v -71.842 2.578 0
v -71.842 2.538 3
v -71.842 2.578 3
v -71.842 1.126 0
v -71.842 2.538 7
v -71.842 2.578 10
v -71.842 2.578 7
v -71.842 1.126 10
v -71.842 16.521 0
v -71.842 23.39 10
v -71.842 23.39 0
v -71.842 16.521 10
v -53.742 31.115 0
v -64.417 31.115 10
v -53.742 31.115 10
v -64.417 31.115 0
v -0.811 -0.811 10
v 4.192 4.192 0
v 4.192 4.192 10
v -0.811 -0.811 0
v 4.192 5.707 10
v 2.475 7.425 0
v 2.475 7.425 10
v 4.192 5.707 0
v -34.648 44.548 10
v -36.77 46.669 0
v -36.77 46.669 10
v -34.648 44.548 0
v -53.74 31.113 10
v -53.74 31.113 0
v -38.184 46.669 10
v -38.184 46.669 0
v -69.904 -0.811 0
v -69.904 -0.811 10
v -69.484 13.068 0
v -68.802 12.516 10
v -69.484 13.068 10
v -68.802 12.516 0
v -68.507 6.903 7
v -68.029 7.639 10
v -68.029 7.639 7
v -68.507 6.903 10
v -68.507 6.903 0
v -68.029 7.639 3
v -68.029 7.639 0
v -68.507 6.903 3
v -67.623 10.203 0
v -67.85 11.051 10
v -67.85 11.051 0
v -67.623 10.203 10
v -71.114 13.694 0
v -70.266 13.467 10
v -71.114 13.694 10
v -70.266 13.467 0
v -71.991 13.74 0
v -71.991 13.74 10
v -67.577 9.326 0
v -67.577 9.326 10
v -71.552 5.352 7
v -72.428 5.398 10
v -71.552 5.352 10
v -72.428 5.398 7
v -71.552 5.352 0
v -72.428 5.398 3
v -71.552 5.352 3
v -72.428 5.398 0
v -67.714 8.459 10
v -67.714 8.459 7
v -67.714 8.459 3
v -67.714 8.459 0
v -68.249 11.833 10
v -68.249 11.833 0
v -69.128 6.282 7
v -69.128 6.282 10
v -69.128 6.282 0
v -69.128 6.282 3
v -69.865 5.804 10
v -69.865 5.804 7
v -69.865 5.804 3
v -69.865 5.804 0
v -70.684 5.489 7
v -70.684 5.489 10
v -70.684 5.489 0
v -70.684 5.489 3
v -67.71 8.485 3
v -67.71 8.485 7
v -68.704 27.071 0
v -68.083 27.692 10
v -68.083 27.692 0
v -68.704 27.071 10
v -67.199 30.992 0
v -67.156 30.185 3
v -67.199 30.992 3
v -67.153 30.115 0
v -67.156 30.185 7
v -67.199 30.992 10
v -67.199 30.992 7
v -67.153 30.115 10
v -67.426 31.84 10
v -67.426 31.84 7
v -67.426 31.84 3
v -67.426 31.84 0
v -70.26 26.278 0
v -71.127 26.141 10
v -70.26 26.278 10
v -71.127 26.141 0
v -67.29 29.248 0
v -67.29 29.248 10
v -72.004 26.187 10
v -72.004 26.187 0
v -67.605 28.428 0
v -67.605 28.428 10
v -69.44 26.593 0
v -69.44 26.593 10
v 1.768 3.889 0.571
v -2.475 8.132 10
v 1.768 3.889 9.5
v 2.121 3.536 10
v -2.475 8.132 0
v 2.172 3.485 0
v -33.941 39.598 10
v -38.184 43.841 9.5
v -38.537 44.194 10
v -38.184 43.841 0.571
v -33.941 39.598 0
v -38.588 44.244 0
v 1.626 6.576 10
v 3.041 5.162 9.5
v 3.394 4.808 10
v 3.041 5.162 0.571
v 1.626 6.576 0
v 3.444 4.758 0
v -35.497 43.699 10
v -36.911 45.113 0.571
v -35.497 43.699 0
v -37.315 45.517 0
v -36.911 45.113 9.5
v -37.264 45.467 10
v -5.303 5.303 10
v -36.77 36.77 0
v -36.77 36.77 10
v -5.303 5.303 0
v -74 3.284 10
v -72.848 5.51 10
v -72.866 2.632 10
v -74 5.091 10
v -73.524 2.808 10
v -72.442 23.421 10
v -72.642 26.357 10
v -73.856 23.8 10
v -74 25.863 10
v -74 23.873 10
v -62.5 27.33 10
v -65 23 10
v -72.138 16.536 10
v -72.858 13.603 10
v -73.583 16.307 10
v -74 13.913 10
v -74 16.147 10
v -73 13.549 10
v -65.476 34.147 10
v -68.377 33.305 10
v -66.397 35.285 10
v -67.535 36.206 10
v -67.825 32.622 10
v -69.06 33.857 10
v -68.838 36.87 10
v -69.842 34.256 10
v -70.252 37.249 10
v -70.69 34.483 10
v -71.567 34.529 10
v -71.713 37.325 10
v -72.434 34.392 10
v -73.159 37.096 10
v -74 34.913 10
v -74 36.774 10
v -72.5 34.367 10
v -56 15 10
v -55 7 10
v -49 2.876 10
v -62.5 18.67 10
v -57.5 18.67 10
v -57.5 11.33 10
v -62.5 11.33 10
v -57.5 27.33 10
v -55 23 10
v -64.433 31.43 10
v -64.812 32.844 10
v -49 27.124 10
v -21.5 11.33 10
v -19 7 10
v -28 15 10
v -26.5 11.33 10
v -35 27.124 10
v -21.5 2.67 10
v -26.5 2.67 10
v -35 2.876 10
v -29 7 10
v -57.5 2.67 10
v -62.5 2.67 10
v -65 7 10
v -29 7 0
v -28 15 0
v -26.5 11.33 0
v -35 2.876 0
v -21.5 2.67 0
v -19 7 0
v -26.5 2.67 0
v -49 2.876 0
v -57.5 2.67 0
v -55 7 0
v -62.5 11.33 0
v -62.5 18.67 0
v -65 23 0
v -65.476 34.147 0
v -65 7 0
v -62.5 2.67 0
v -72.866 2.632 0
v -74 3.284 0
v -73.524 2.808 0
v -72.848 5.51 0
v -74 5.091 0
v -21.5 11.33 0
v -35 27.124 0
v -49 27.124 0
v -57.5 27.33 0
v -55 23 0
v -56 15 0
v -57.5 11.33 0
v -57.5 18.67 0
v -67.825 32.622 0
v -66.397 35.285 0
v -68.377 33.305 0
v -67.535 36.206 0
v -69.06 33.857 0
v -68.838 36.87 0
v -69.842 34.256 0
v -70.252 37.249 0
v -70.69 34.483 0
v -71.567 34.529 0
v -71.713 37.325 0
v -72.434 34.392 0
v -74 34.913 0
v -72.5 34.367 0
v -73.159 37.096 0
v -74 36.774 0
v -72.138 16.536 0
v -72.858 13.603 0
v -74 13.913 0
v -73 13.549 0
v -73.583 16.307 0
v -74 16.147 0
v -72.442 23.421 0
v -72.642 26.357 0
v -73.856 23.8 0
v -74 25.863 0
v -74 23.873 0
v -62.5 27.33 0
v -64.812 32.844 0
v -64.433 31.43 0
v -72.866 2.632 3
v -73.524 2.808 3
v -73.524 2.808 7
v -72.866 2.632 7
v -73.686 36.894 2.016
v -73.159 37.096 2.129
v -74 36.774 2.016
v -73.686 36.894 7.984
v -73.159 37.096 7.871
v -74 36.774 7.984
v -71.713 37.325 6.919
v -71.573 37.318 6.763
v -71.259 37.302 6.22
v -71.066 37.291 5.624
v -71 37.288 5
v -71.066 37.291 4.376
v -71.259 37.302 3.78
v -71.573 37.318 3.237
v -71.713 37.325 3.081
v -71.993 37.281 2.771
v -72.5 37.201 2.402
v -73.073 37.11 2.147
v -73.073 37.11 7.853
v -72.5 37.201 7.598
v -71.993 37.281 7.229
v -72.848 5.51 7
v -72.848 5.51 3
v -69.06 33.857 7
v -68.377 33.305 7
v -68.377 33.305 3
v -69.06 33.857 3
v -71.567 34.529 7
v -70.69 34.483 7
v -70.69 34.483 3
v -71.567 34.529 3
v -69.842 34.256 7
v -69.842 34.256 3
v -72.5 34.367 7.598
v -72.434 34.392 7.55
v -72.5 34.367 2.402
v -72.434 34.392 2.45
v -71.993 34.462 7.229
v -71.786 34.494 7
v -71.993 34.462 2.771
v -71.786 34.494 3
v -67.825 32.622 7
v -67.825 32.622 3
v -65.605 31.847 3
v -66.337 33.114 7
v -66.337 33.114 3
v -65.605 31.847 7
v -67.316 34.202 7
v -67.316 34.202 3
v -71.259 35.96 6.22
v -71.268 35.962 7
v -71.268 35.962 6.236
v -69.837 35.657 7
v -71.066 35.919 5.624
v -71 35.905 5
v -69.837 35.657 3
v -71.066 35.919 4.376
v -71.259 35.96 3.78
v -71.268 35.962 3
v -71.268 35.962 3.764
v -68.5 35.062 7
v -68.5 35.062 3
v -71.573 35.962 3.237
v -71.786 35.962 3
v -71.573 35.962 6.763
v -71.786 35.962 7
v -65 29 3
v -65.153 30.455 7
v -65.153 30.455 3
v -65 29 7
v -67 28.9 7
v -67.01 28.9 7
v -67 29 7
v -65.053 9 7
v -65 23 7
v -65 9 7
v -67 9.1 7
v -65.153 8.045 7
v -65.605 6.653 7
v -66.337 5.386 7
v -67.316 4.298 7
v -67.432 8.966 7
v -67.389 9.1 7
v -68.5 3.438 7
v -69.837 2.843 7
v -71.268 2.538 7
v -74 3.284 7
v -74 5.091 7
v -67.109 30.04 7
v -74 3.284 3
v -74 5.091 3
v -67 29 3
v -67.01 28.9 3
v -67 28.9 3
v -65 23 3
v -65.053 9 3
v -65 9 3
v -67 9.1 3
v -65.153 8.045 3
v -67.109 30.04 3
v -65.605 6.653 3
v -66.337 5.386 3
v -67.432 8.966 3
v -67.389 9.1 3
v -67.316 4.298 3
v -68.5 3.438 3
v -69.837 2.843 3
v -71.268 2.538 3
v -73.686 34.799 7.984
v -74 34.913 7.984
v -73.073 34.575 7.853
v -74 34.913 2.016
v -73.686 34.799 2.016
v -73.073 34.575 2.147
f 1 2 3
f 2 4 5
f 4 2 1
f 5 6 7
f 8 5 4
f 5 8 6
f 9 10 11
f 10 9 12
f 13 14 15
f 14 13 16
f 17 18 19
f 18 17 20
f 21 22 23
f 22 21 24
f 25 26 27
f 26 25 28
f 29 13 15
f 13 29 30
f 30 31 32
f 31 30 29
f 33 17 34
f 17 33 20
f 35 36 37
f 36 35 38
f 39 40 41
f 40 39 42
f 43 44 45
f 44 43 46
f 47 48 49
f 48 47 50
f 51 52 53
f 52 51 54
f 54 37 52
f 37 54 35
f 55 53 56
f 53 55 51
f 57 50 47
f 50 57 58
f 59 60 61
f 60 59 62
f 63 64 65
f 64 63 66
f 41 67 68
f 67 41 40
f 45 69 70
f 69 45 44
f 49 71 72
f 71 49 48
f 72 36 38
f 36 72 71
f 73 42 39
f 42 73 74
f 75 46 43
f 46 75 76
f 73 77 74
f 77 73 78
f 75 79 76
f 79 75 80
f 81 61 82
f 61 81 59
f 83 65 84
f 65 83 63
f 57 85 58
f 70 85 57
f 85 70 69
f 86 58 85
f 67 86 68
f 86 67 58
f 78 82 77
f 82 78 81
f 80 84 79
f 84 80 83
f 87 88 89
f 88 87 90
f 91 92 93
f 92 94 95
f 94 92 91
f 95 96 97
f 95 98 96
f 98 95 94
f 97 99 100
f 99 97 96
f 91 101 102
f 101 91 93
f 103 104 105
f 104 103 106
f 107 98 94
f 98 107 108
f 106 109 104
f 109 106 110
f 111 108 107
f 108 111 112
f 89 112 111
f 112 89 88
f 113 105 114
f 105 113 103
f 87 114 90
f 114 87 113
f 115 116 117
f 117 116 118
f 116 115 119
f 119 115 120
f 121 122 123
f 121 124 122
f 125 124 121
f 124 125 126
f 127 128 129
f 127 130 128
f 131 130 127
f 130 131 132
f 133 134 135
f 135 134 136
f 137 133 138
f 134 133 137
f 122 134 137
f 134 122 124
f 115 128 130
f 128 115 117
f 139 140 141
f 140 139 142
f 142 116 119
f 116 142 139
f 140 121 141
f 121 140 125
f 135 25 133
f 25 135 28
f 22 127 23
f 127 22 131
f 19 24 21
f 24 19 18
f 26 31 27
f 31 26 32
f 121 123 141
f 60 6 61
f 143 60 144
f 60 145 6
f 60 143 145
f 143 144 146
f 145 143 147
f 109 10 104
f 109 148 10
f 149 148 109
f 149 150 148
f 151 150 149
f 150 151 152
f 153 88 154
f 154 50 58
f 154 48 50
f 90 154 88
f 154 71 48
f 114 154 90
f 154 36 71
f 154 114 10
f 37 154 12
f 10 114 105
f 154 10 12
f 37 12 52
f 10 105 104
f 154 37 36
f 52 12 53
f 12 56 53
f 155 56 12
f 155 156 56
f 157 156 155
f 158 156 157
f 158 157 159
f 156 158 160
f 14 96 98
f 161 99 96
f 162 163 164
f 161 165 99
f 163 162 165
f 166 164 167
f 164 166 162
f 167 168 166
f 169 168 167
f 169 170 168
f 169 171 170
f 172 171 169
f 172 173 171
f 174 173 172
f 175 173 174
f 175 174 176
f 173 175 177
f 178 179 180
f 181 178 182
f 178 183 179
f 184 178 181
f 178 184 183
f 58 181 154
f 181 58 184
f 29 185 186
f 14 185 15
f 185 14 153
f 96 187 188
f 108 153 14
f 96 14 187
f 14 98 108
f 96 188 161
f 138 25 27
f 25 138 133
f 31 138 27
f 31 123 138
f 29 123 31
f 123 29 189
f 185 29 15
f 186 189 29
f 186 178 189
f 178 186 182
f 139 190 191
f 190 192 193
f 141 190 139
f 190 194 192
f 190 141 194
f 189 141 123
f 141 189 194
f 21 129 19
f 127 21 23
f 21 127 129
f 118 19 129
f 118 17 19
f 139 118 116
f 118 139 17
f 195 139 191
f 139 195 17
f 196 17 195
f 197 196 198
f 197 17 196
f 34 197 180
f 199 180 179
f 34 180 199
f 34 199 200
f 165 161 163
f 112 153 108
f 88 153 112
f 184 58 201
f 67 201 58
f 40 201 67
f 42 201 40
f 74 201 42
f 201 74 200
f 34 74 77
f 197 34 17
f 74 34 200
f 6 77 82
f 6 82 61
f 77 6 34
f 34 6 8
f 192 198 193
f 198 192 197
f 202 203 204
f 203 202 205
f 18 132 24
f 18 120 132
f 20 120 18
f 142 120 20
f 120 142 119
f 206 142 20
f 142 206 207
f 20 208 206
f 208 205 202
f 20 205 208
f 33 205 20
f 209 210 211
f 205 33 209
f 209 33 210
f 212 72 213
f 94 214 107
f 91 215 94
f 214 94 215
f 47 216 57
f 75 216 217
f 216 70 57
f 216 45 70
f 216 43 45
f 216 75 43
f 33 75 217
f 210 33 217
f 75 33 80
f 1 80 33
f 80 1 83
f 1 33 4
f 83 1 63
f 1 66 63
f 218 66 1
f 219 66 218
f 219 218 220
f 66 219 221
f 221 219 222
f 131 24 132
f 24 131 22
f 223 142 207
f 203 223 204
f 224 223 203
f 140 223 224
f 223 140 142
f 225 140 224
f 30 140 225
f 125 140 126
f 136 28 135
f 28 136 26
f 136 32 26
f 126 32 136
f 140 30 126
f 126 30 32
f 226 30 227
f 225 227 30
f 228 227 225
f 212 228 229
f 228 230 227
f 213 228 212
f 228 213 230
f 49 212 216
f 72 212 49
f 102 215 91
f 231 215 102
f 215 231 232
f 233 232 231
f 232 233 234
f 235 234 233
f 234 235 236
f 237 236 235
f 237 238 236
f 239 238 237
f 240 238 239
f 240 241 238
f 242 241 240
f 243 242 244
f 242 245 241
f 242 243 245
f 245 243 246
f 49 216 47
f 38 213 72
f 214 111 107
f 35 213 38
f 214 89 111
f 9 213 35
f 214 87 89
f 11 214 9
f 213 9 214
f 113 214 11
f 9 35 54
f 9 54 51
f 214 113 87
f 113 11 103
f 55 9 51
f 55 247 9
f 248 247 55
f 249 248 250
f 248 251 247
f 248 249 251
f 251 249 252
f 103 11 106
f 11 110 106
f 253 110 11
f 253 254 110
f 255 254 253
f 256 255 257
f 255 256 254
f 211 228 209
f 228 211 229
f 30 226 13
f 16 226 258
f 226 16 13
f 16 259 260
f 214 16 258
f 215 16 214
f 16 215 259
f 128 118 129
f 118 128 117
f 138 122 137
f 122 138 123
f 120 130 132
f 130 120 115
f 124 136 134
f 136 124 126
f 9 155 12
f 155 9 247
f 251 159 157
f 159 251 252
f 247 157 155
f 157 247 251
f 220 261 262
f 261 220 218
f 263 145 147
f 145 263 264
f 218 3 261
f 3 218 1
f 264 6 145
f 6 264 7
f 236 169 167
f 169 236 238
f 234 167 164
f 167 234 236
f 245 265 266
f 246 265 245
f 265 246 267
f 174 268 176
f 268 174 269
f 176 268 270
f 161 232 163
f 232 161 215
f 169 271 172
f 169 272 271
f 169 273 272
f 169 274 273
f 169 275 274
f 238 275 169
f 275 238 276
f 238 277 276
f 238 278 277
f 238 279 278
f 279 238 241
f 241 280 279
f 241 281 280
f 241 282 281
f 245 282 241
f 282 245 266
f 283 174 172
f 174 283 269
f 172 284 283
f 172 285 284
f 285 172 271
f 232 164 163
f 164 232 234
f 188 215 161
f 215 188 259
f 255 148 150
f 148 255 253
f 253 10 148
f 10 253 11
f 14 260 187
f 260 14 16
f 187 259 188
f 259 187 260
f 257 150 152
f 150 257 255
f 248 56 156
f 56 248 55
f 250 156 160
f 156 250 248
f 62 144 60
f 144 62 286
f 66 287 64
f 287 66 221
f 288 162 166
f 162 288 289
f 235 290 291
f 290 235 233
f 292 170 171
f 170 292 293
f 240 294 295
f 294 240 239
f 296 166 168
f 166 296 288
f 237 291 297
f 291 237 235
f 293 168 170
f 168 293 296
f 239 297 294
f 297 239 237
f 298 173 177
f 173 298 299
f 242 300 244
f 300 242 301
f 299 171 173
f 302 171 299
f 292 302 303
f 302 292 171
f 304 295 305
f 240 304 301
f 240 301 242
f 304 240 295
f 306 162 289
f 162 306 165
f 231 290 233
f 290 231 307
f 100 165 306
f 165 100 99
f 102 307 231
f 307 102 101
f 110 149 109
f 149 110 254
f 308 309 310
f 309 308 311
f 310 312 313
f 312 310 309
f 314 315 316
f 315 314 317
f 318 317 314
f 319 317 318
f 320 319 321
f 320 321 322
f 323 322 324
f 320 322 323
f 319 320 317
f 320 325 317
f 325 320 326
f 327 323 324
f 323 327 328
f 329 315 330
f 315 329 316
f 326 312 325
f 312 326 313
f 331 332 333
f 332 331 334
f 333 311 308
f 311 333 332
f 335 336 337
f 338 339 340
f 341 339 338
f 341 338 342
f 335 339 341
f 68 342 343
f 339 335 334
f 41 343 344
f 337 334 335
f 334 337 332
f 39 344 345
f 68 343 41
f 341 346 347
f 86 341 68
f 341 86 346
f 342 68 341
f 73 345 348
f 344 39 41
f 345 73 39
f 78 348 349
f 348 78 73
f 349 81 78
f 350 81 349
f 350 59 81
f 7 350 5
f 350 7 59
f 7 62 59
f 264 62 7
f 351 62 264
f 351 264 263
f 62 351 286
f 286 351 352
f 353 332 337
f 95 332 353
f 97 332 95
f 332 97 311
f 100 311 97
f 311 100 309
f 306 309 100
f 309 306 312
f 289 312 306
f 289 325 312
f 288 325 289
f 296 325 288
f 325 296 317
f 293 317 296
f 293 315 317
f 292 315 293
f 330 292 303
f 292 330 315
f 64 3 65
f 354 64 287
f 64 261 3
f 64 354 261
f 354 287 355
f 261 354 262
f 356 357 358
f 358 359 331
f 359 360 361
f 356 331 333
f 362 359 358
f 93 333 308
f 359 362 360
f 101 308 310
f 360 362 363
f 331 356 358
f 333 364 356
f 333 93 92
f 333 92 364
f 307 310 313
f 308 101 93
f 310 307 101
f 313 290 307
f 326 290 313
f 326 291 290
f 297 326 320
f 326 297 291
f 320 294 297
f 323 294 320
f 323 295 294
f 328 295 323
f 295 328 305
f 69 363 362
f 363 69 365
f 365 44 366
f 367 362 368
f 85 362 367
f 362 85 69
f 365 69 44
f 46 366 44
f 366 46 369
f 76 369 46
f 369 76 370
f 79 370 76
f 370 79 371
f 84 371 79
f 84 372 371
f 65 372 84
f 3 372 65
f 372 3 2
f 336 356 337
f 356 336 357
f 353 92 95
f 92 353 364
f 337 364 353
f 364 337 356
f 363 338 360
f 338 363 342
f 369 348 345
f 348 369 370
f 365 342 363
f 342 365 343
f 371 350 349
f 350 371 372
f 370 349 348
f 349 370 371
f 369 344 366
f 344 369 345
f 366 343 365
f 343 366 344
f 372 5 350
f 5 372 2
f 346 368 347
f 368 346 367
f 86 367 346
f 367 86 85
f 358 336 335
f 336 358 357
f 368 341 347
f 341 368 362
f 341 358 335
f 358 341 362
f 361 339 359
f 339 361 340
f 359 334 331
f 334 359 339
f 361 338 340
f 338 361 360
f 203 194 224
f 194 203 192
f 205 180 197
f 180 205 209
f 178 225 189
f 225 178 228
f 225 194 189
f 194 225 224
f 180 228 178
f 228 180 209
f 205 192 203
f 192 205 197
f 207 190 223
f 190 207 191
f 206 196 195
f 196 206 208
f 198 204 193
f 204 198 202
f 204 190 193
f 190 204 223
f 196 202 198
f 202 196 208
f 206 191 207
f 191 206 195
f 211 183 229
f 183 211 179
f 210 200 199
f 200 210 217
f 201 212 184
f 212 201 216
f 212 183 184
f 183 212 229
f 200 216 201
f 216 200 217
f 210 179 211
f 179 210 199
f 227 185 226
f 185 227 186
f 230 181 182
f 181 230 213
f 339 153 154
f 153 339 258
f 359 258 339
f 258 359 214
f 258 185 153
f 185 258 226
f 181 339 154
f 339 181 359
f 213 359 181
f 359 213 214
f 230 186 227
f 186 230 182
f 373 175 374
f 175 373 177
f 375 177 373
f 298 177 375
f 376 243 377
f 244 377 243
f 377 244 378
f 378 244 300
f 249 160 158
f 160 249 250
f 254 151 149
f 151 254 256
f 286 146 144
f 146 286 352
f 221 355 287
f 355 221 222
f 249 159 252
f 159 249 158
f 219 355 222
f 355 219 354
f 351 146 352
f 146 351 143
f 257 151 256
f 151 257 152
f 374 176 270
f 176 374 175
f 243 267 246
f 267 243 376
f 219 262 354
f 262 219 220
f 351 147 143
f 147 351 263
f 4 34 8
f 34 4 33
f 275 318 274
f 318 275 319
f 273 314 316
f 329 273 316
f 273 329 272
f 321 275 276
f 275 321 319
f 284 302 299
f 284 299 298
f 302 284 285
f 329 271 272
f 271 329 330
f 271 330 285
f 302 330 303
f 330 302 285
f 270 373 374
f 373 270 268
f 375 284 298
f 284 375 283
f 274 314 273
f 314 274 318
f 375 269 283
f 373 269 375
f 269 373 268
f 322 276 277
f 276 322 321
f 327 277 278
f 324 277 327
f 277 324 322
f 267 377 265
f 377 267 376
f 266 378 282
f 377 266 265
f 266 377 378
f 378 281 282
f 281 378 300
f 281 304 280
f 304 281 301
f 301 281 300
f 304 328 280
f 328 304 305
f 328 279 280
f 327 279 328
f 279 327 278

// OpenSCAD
// PRUSA iteration3
// lcd-support-A
// GNU GPL v3
// Josef Průša <iam@josefprusa.cz> and contributors
// http://www.reprap.org/wiki/Prusa_Mendel
// http://prusamendel.org

isMetric=true;


module body(){

difference() {
    
    union(){
        translate( [ -55, -2 , 0 ] ) cube( [ 69 , 81 , 10 ] ); 
    }
    
    union (){

    // outer body shape
    translate( [ -69.6, 32, -1 ] ) rotate([0,0,45]) cube( [ 60 , 53 , 15 ] ); 
    translate( [ 13.7, 89.7, -1 ] ) rotate([0,0,135]) cube( [ 60 , 42 , 15 ] );
    translate( [ -19, -9, -1 ] ) cube( [ 60 , 9 , 15 ] );   
    translate( [ 7, -3, -1 ] ) cube( [ 60 , 68 , 16 ] );  
    translate( [ -16, 60, -1 ] ) cube( [ 60 , 50 , 15 ] );
    translate( [ -41, -45, -1 ] ) rotate([0,0,45]) cube( [ 60 , 80 , 13 ] );  
        
    // threaded rods opening
    translate( [ -44 , 57.5 , -1 ] ) cylinder( h = 17, r = 4.2, $fn=30);  
    translate( [ -29 , 71.9 , -1 ] ) cylinder( h = 17, r = 4.2, $fn=30);  

    // pcb cout out
    translate( [ 4 , 1.5 , -1 ] ) cube( [ 1.8 , 56.5 , 17 ] ); 
    translate( [ 0 , 7.5 , -1 ] ) cube( [ 5.8 , 44.5 , 17 ] ); 
    translate( [ 4.8 , 3.5 , -1 ] ) cube( [ 5.8 , 52.5 , 17 ] );

    translate( [ 8 , -5 , -1 ] ) rotate([0,0,45]) cube( [ 5 , 5 , 17 ] );
    translate( [ 8 , 58 , -1 ] ) rotate([0,0,45]) cube( [ 5 , 5 , 17 ] );
        
    }

    // pcb inserts
    translate( [ 4, 3 , 8 ] ) rotate([45,0,0]) cube( [ 1.8 , 5 , 5 ] ); 
    translate( [ 4, 56.5 , 8 ] ) rotate([45,0,0]) cube( [ 1.8 , 5 , 5 ] );     
    translate( [ 4, 3 , -5 ] ) rotate([45,0,0]) cube( [ 1.8 , 5 , 5 ] ); 
    translate( [ 4, 56.5 , -5 ] ) rotate([45,0,0]) cube( [ 1.8 , 5 , 5 ] );     
    
}

 
difference(){
    union(){
        translate( [ -44 , 57.5 , 0 ] ) cylinder( h = 10, r = 7, $fn=30); 
        translate( [ -29 , 71.9 , 0 ] ) cylinder( h = 10, r =7 , $fn=30); 
    }
        translate( [ -44 , 57.5 , -1 ] ) cylinder( h = 17, r = 4.2, $fn=30);
        translate( [ -29 , 71.9 , -1 ] ) cylinder( h = 17, r = 4.2, $fn=30);
}
}



module ziptie()
{
difference()
{
  union(){
    difference(){
        translate( [ -72 , 29 , 3 ] ) cylinder( h = 4, r = 7, $fn=30);
        translate( [ -72 , 29 , 3 ] ) cylinder( h = 4, r = 5, $fn=30);
    }
    difference(){
        translate( [ -72 , 9.5 , 3 ] ) cylinder( h = 4, r = 7, $fn=30);
        translate( [ -72 , 11 , 3 ] ) cylinder( h = 4, r = 5, $fn=30); 
    }
    }
    translate( [ -80 , 9.1 , 3 ] )  cube( [ 15 , 19.8 , 4 ] );  
    }
    
    translate( [ -67 , 9 , 3 ] )  cube( [ 2 , 20 , 4 ] ); 
}
    




module lcd_support_A() {  // NV: modularize it!

  difference() {
      
  rotate([0,0,45]) body();

  // lightening holes
  translate( [ -42 , 15 , -1 ] ) cylinder( h = 15, r = 14, $fn=6);  
  translate( [ -24 , 7 , -1 ] ) cylinder( h = 15, r = 5, $fn=6);  
  translate( [ -60 , 7 , -1 ] ) cylinder( h = 15, r = 5, $fn=6);  
  translate( [ -60 , 23 , -1 ] ) cylinder( h = 15, r = 5, $fn=6);  
      
  // threaded rods corners
  translate( [ -71 , 28.5 , -1 ] ) rotate([0,0,70]) cube( [ 5 , 10 , 15 ] );   
  translate( [ -71 , 7.5 , -1 ] ) rotate([0,0,70]) cube( [ 5 , 10 , 15 ] );      
  translate( [ -80 , 29, -1 ] ) rotate([0,0,-70]) cube( [ 5 , 10 , 15 ] );   
  translate( [ -82 , 7.5 , -1 ] ) rotate([0,0,-70]) cube( [ 5 , 10 , 15 ] );      
  translate( [ -86 , 0 , -1 ] ) cube( [ 12 , 50 , 15 ] );  
  translate( [ -83 , -16 , -1 ] ) rotate([0,0,45]) cube( [ 20 , 20 , 15 ] );  

  ziptie();
  // ziptie head cutout
  translate( [ -74 , 38 , 5 ] ) rotate([90,0,0]) cylinder( h = 5, r = 3, $fn=30);  
  }  
}

lcd_support_A(); // NV: modularize it!
